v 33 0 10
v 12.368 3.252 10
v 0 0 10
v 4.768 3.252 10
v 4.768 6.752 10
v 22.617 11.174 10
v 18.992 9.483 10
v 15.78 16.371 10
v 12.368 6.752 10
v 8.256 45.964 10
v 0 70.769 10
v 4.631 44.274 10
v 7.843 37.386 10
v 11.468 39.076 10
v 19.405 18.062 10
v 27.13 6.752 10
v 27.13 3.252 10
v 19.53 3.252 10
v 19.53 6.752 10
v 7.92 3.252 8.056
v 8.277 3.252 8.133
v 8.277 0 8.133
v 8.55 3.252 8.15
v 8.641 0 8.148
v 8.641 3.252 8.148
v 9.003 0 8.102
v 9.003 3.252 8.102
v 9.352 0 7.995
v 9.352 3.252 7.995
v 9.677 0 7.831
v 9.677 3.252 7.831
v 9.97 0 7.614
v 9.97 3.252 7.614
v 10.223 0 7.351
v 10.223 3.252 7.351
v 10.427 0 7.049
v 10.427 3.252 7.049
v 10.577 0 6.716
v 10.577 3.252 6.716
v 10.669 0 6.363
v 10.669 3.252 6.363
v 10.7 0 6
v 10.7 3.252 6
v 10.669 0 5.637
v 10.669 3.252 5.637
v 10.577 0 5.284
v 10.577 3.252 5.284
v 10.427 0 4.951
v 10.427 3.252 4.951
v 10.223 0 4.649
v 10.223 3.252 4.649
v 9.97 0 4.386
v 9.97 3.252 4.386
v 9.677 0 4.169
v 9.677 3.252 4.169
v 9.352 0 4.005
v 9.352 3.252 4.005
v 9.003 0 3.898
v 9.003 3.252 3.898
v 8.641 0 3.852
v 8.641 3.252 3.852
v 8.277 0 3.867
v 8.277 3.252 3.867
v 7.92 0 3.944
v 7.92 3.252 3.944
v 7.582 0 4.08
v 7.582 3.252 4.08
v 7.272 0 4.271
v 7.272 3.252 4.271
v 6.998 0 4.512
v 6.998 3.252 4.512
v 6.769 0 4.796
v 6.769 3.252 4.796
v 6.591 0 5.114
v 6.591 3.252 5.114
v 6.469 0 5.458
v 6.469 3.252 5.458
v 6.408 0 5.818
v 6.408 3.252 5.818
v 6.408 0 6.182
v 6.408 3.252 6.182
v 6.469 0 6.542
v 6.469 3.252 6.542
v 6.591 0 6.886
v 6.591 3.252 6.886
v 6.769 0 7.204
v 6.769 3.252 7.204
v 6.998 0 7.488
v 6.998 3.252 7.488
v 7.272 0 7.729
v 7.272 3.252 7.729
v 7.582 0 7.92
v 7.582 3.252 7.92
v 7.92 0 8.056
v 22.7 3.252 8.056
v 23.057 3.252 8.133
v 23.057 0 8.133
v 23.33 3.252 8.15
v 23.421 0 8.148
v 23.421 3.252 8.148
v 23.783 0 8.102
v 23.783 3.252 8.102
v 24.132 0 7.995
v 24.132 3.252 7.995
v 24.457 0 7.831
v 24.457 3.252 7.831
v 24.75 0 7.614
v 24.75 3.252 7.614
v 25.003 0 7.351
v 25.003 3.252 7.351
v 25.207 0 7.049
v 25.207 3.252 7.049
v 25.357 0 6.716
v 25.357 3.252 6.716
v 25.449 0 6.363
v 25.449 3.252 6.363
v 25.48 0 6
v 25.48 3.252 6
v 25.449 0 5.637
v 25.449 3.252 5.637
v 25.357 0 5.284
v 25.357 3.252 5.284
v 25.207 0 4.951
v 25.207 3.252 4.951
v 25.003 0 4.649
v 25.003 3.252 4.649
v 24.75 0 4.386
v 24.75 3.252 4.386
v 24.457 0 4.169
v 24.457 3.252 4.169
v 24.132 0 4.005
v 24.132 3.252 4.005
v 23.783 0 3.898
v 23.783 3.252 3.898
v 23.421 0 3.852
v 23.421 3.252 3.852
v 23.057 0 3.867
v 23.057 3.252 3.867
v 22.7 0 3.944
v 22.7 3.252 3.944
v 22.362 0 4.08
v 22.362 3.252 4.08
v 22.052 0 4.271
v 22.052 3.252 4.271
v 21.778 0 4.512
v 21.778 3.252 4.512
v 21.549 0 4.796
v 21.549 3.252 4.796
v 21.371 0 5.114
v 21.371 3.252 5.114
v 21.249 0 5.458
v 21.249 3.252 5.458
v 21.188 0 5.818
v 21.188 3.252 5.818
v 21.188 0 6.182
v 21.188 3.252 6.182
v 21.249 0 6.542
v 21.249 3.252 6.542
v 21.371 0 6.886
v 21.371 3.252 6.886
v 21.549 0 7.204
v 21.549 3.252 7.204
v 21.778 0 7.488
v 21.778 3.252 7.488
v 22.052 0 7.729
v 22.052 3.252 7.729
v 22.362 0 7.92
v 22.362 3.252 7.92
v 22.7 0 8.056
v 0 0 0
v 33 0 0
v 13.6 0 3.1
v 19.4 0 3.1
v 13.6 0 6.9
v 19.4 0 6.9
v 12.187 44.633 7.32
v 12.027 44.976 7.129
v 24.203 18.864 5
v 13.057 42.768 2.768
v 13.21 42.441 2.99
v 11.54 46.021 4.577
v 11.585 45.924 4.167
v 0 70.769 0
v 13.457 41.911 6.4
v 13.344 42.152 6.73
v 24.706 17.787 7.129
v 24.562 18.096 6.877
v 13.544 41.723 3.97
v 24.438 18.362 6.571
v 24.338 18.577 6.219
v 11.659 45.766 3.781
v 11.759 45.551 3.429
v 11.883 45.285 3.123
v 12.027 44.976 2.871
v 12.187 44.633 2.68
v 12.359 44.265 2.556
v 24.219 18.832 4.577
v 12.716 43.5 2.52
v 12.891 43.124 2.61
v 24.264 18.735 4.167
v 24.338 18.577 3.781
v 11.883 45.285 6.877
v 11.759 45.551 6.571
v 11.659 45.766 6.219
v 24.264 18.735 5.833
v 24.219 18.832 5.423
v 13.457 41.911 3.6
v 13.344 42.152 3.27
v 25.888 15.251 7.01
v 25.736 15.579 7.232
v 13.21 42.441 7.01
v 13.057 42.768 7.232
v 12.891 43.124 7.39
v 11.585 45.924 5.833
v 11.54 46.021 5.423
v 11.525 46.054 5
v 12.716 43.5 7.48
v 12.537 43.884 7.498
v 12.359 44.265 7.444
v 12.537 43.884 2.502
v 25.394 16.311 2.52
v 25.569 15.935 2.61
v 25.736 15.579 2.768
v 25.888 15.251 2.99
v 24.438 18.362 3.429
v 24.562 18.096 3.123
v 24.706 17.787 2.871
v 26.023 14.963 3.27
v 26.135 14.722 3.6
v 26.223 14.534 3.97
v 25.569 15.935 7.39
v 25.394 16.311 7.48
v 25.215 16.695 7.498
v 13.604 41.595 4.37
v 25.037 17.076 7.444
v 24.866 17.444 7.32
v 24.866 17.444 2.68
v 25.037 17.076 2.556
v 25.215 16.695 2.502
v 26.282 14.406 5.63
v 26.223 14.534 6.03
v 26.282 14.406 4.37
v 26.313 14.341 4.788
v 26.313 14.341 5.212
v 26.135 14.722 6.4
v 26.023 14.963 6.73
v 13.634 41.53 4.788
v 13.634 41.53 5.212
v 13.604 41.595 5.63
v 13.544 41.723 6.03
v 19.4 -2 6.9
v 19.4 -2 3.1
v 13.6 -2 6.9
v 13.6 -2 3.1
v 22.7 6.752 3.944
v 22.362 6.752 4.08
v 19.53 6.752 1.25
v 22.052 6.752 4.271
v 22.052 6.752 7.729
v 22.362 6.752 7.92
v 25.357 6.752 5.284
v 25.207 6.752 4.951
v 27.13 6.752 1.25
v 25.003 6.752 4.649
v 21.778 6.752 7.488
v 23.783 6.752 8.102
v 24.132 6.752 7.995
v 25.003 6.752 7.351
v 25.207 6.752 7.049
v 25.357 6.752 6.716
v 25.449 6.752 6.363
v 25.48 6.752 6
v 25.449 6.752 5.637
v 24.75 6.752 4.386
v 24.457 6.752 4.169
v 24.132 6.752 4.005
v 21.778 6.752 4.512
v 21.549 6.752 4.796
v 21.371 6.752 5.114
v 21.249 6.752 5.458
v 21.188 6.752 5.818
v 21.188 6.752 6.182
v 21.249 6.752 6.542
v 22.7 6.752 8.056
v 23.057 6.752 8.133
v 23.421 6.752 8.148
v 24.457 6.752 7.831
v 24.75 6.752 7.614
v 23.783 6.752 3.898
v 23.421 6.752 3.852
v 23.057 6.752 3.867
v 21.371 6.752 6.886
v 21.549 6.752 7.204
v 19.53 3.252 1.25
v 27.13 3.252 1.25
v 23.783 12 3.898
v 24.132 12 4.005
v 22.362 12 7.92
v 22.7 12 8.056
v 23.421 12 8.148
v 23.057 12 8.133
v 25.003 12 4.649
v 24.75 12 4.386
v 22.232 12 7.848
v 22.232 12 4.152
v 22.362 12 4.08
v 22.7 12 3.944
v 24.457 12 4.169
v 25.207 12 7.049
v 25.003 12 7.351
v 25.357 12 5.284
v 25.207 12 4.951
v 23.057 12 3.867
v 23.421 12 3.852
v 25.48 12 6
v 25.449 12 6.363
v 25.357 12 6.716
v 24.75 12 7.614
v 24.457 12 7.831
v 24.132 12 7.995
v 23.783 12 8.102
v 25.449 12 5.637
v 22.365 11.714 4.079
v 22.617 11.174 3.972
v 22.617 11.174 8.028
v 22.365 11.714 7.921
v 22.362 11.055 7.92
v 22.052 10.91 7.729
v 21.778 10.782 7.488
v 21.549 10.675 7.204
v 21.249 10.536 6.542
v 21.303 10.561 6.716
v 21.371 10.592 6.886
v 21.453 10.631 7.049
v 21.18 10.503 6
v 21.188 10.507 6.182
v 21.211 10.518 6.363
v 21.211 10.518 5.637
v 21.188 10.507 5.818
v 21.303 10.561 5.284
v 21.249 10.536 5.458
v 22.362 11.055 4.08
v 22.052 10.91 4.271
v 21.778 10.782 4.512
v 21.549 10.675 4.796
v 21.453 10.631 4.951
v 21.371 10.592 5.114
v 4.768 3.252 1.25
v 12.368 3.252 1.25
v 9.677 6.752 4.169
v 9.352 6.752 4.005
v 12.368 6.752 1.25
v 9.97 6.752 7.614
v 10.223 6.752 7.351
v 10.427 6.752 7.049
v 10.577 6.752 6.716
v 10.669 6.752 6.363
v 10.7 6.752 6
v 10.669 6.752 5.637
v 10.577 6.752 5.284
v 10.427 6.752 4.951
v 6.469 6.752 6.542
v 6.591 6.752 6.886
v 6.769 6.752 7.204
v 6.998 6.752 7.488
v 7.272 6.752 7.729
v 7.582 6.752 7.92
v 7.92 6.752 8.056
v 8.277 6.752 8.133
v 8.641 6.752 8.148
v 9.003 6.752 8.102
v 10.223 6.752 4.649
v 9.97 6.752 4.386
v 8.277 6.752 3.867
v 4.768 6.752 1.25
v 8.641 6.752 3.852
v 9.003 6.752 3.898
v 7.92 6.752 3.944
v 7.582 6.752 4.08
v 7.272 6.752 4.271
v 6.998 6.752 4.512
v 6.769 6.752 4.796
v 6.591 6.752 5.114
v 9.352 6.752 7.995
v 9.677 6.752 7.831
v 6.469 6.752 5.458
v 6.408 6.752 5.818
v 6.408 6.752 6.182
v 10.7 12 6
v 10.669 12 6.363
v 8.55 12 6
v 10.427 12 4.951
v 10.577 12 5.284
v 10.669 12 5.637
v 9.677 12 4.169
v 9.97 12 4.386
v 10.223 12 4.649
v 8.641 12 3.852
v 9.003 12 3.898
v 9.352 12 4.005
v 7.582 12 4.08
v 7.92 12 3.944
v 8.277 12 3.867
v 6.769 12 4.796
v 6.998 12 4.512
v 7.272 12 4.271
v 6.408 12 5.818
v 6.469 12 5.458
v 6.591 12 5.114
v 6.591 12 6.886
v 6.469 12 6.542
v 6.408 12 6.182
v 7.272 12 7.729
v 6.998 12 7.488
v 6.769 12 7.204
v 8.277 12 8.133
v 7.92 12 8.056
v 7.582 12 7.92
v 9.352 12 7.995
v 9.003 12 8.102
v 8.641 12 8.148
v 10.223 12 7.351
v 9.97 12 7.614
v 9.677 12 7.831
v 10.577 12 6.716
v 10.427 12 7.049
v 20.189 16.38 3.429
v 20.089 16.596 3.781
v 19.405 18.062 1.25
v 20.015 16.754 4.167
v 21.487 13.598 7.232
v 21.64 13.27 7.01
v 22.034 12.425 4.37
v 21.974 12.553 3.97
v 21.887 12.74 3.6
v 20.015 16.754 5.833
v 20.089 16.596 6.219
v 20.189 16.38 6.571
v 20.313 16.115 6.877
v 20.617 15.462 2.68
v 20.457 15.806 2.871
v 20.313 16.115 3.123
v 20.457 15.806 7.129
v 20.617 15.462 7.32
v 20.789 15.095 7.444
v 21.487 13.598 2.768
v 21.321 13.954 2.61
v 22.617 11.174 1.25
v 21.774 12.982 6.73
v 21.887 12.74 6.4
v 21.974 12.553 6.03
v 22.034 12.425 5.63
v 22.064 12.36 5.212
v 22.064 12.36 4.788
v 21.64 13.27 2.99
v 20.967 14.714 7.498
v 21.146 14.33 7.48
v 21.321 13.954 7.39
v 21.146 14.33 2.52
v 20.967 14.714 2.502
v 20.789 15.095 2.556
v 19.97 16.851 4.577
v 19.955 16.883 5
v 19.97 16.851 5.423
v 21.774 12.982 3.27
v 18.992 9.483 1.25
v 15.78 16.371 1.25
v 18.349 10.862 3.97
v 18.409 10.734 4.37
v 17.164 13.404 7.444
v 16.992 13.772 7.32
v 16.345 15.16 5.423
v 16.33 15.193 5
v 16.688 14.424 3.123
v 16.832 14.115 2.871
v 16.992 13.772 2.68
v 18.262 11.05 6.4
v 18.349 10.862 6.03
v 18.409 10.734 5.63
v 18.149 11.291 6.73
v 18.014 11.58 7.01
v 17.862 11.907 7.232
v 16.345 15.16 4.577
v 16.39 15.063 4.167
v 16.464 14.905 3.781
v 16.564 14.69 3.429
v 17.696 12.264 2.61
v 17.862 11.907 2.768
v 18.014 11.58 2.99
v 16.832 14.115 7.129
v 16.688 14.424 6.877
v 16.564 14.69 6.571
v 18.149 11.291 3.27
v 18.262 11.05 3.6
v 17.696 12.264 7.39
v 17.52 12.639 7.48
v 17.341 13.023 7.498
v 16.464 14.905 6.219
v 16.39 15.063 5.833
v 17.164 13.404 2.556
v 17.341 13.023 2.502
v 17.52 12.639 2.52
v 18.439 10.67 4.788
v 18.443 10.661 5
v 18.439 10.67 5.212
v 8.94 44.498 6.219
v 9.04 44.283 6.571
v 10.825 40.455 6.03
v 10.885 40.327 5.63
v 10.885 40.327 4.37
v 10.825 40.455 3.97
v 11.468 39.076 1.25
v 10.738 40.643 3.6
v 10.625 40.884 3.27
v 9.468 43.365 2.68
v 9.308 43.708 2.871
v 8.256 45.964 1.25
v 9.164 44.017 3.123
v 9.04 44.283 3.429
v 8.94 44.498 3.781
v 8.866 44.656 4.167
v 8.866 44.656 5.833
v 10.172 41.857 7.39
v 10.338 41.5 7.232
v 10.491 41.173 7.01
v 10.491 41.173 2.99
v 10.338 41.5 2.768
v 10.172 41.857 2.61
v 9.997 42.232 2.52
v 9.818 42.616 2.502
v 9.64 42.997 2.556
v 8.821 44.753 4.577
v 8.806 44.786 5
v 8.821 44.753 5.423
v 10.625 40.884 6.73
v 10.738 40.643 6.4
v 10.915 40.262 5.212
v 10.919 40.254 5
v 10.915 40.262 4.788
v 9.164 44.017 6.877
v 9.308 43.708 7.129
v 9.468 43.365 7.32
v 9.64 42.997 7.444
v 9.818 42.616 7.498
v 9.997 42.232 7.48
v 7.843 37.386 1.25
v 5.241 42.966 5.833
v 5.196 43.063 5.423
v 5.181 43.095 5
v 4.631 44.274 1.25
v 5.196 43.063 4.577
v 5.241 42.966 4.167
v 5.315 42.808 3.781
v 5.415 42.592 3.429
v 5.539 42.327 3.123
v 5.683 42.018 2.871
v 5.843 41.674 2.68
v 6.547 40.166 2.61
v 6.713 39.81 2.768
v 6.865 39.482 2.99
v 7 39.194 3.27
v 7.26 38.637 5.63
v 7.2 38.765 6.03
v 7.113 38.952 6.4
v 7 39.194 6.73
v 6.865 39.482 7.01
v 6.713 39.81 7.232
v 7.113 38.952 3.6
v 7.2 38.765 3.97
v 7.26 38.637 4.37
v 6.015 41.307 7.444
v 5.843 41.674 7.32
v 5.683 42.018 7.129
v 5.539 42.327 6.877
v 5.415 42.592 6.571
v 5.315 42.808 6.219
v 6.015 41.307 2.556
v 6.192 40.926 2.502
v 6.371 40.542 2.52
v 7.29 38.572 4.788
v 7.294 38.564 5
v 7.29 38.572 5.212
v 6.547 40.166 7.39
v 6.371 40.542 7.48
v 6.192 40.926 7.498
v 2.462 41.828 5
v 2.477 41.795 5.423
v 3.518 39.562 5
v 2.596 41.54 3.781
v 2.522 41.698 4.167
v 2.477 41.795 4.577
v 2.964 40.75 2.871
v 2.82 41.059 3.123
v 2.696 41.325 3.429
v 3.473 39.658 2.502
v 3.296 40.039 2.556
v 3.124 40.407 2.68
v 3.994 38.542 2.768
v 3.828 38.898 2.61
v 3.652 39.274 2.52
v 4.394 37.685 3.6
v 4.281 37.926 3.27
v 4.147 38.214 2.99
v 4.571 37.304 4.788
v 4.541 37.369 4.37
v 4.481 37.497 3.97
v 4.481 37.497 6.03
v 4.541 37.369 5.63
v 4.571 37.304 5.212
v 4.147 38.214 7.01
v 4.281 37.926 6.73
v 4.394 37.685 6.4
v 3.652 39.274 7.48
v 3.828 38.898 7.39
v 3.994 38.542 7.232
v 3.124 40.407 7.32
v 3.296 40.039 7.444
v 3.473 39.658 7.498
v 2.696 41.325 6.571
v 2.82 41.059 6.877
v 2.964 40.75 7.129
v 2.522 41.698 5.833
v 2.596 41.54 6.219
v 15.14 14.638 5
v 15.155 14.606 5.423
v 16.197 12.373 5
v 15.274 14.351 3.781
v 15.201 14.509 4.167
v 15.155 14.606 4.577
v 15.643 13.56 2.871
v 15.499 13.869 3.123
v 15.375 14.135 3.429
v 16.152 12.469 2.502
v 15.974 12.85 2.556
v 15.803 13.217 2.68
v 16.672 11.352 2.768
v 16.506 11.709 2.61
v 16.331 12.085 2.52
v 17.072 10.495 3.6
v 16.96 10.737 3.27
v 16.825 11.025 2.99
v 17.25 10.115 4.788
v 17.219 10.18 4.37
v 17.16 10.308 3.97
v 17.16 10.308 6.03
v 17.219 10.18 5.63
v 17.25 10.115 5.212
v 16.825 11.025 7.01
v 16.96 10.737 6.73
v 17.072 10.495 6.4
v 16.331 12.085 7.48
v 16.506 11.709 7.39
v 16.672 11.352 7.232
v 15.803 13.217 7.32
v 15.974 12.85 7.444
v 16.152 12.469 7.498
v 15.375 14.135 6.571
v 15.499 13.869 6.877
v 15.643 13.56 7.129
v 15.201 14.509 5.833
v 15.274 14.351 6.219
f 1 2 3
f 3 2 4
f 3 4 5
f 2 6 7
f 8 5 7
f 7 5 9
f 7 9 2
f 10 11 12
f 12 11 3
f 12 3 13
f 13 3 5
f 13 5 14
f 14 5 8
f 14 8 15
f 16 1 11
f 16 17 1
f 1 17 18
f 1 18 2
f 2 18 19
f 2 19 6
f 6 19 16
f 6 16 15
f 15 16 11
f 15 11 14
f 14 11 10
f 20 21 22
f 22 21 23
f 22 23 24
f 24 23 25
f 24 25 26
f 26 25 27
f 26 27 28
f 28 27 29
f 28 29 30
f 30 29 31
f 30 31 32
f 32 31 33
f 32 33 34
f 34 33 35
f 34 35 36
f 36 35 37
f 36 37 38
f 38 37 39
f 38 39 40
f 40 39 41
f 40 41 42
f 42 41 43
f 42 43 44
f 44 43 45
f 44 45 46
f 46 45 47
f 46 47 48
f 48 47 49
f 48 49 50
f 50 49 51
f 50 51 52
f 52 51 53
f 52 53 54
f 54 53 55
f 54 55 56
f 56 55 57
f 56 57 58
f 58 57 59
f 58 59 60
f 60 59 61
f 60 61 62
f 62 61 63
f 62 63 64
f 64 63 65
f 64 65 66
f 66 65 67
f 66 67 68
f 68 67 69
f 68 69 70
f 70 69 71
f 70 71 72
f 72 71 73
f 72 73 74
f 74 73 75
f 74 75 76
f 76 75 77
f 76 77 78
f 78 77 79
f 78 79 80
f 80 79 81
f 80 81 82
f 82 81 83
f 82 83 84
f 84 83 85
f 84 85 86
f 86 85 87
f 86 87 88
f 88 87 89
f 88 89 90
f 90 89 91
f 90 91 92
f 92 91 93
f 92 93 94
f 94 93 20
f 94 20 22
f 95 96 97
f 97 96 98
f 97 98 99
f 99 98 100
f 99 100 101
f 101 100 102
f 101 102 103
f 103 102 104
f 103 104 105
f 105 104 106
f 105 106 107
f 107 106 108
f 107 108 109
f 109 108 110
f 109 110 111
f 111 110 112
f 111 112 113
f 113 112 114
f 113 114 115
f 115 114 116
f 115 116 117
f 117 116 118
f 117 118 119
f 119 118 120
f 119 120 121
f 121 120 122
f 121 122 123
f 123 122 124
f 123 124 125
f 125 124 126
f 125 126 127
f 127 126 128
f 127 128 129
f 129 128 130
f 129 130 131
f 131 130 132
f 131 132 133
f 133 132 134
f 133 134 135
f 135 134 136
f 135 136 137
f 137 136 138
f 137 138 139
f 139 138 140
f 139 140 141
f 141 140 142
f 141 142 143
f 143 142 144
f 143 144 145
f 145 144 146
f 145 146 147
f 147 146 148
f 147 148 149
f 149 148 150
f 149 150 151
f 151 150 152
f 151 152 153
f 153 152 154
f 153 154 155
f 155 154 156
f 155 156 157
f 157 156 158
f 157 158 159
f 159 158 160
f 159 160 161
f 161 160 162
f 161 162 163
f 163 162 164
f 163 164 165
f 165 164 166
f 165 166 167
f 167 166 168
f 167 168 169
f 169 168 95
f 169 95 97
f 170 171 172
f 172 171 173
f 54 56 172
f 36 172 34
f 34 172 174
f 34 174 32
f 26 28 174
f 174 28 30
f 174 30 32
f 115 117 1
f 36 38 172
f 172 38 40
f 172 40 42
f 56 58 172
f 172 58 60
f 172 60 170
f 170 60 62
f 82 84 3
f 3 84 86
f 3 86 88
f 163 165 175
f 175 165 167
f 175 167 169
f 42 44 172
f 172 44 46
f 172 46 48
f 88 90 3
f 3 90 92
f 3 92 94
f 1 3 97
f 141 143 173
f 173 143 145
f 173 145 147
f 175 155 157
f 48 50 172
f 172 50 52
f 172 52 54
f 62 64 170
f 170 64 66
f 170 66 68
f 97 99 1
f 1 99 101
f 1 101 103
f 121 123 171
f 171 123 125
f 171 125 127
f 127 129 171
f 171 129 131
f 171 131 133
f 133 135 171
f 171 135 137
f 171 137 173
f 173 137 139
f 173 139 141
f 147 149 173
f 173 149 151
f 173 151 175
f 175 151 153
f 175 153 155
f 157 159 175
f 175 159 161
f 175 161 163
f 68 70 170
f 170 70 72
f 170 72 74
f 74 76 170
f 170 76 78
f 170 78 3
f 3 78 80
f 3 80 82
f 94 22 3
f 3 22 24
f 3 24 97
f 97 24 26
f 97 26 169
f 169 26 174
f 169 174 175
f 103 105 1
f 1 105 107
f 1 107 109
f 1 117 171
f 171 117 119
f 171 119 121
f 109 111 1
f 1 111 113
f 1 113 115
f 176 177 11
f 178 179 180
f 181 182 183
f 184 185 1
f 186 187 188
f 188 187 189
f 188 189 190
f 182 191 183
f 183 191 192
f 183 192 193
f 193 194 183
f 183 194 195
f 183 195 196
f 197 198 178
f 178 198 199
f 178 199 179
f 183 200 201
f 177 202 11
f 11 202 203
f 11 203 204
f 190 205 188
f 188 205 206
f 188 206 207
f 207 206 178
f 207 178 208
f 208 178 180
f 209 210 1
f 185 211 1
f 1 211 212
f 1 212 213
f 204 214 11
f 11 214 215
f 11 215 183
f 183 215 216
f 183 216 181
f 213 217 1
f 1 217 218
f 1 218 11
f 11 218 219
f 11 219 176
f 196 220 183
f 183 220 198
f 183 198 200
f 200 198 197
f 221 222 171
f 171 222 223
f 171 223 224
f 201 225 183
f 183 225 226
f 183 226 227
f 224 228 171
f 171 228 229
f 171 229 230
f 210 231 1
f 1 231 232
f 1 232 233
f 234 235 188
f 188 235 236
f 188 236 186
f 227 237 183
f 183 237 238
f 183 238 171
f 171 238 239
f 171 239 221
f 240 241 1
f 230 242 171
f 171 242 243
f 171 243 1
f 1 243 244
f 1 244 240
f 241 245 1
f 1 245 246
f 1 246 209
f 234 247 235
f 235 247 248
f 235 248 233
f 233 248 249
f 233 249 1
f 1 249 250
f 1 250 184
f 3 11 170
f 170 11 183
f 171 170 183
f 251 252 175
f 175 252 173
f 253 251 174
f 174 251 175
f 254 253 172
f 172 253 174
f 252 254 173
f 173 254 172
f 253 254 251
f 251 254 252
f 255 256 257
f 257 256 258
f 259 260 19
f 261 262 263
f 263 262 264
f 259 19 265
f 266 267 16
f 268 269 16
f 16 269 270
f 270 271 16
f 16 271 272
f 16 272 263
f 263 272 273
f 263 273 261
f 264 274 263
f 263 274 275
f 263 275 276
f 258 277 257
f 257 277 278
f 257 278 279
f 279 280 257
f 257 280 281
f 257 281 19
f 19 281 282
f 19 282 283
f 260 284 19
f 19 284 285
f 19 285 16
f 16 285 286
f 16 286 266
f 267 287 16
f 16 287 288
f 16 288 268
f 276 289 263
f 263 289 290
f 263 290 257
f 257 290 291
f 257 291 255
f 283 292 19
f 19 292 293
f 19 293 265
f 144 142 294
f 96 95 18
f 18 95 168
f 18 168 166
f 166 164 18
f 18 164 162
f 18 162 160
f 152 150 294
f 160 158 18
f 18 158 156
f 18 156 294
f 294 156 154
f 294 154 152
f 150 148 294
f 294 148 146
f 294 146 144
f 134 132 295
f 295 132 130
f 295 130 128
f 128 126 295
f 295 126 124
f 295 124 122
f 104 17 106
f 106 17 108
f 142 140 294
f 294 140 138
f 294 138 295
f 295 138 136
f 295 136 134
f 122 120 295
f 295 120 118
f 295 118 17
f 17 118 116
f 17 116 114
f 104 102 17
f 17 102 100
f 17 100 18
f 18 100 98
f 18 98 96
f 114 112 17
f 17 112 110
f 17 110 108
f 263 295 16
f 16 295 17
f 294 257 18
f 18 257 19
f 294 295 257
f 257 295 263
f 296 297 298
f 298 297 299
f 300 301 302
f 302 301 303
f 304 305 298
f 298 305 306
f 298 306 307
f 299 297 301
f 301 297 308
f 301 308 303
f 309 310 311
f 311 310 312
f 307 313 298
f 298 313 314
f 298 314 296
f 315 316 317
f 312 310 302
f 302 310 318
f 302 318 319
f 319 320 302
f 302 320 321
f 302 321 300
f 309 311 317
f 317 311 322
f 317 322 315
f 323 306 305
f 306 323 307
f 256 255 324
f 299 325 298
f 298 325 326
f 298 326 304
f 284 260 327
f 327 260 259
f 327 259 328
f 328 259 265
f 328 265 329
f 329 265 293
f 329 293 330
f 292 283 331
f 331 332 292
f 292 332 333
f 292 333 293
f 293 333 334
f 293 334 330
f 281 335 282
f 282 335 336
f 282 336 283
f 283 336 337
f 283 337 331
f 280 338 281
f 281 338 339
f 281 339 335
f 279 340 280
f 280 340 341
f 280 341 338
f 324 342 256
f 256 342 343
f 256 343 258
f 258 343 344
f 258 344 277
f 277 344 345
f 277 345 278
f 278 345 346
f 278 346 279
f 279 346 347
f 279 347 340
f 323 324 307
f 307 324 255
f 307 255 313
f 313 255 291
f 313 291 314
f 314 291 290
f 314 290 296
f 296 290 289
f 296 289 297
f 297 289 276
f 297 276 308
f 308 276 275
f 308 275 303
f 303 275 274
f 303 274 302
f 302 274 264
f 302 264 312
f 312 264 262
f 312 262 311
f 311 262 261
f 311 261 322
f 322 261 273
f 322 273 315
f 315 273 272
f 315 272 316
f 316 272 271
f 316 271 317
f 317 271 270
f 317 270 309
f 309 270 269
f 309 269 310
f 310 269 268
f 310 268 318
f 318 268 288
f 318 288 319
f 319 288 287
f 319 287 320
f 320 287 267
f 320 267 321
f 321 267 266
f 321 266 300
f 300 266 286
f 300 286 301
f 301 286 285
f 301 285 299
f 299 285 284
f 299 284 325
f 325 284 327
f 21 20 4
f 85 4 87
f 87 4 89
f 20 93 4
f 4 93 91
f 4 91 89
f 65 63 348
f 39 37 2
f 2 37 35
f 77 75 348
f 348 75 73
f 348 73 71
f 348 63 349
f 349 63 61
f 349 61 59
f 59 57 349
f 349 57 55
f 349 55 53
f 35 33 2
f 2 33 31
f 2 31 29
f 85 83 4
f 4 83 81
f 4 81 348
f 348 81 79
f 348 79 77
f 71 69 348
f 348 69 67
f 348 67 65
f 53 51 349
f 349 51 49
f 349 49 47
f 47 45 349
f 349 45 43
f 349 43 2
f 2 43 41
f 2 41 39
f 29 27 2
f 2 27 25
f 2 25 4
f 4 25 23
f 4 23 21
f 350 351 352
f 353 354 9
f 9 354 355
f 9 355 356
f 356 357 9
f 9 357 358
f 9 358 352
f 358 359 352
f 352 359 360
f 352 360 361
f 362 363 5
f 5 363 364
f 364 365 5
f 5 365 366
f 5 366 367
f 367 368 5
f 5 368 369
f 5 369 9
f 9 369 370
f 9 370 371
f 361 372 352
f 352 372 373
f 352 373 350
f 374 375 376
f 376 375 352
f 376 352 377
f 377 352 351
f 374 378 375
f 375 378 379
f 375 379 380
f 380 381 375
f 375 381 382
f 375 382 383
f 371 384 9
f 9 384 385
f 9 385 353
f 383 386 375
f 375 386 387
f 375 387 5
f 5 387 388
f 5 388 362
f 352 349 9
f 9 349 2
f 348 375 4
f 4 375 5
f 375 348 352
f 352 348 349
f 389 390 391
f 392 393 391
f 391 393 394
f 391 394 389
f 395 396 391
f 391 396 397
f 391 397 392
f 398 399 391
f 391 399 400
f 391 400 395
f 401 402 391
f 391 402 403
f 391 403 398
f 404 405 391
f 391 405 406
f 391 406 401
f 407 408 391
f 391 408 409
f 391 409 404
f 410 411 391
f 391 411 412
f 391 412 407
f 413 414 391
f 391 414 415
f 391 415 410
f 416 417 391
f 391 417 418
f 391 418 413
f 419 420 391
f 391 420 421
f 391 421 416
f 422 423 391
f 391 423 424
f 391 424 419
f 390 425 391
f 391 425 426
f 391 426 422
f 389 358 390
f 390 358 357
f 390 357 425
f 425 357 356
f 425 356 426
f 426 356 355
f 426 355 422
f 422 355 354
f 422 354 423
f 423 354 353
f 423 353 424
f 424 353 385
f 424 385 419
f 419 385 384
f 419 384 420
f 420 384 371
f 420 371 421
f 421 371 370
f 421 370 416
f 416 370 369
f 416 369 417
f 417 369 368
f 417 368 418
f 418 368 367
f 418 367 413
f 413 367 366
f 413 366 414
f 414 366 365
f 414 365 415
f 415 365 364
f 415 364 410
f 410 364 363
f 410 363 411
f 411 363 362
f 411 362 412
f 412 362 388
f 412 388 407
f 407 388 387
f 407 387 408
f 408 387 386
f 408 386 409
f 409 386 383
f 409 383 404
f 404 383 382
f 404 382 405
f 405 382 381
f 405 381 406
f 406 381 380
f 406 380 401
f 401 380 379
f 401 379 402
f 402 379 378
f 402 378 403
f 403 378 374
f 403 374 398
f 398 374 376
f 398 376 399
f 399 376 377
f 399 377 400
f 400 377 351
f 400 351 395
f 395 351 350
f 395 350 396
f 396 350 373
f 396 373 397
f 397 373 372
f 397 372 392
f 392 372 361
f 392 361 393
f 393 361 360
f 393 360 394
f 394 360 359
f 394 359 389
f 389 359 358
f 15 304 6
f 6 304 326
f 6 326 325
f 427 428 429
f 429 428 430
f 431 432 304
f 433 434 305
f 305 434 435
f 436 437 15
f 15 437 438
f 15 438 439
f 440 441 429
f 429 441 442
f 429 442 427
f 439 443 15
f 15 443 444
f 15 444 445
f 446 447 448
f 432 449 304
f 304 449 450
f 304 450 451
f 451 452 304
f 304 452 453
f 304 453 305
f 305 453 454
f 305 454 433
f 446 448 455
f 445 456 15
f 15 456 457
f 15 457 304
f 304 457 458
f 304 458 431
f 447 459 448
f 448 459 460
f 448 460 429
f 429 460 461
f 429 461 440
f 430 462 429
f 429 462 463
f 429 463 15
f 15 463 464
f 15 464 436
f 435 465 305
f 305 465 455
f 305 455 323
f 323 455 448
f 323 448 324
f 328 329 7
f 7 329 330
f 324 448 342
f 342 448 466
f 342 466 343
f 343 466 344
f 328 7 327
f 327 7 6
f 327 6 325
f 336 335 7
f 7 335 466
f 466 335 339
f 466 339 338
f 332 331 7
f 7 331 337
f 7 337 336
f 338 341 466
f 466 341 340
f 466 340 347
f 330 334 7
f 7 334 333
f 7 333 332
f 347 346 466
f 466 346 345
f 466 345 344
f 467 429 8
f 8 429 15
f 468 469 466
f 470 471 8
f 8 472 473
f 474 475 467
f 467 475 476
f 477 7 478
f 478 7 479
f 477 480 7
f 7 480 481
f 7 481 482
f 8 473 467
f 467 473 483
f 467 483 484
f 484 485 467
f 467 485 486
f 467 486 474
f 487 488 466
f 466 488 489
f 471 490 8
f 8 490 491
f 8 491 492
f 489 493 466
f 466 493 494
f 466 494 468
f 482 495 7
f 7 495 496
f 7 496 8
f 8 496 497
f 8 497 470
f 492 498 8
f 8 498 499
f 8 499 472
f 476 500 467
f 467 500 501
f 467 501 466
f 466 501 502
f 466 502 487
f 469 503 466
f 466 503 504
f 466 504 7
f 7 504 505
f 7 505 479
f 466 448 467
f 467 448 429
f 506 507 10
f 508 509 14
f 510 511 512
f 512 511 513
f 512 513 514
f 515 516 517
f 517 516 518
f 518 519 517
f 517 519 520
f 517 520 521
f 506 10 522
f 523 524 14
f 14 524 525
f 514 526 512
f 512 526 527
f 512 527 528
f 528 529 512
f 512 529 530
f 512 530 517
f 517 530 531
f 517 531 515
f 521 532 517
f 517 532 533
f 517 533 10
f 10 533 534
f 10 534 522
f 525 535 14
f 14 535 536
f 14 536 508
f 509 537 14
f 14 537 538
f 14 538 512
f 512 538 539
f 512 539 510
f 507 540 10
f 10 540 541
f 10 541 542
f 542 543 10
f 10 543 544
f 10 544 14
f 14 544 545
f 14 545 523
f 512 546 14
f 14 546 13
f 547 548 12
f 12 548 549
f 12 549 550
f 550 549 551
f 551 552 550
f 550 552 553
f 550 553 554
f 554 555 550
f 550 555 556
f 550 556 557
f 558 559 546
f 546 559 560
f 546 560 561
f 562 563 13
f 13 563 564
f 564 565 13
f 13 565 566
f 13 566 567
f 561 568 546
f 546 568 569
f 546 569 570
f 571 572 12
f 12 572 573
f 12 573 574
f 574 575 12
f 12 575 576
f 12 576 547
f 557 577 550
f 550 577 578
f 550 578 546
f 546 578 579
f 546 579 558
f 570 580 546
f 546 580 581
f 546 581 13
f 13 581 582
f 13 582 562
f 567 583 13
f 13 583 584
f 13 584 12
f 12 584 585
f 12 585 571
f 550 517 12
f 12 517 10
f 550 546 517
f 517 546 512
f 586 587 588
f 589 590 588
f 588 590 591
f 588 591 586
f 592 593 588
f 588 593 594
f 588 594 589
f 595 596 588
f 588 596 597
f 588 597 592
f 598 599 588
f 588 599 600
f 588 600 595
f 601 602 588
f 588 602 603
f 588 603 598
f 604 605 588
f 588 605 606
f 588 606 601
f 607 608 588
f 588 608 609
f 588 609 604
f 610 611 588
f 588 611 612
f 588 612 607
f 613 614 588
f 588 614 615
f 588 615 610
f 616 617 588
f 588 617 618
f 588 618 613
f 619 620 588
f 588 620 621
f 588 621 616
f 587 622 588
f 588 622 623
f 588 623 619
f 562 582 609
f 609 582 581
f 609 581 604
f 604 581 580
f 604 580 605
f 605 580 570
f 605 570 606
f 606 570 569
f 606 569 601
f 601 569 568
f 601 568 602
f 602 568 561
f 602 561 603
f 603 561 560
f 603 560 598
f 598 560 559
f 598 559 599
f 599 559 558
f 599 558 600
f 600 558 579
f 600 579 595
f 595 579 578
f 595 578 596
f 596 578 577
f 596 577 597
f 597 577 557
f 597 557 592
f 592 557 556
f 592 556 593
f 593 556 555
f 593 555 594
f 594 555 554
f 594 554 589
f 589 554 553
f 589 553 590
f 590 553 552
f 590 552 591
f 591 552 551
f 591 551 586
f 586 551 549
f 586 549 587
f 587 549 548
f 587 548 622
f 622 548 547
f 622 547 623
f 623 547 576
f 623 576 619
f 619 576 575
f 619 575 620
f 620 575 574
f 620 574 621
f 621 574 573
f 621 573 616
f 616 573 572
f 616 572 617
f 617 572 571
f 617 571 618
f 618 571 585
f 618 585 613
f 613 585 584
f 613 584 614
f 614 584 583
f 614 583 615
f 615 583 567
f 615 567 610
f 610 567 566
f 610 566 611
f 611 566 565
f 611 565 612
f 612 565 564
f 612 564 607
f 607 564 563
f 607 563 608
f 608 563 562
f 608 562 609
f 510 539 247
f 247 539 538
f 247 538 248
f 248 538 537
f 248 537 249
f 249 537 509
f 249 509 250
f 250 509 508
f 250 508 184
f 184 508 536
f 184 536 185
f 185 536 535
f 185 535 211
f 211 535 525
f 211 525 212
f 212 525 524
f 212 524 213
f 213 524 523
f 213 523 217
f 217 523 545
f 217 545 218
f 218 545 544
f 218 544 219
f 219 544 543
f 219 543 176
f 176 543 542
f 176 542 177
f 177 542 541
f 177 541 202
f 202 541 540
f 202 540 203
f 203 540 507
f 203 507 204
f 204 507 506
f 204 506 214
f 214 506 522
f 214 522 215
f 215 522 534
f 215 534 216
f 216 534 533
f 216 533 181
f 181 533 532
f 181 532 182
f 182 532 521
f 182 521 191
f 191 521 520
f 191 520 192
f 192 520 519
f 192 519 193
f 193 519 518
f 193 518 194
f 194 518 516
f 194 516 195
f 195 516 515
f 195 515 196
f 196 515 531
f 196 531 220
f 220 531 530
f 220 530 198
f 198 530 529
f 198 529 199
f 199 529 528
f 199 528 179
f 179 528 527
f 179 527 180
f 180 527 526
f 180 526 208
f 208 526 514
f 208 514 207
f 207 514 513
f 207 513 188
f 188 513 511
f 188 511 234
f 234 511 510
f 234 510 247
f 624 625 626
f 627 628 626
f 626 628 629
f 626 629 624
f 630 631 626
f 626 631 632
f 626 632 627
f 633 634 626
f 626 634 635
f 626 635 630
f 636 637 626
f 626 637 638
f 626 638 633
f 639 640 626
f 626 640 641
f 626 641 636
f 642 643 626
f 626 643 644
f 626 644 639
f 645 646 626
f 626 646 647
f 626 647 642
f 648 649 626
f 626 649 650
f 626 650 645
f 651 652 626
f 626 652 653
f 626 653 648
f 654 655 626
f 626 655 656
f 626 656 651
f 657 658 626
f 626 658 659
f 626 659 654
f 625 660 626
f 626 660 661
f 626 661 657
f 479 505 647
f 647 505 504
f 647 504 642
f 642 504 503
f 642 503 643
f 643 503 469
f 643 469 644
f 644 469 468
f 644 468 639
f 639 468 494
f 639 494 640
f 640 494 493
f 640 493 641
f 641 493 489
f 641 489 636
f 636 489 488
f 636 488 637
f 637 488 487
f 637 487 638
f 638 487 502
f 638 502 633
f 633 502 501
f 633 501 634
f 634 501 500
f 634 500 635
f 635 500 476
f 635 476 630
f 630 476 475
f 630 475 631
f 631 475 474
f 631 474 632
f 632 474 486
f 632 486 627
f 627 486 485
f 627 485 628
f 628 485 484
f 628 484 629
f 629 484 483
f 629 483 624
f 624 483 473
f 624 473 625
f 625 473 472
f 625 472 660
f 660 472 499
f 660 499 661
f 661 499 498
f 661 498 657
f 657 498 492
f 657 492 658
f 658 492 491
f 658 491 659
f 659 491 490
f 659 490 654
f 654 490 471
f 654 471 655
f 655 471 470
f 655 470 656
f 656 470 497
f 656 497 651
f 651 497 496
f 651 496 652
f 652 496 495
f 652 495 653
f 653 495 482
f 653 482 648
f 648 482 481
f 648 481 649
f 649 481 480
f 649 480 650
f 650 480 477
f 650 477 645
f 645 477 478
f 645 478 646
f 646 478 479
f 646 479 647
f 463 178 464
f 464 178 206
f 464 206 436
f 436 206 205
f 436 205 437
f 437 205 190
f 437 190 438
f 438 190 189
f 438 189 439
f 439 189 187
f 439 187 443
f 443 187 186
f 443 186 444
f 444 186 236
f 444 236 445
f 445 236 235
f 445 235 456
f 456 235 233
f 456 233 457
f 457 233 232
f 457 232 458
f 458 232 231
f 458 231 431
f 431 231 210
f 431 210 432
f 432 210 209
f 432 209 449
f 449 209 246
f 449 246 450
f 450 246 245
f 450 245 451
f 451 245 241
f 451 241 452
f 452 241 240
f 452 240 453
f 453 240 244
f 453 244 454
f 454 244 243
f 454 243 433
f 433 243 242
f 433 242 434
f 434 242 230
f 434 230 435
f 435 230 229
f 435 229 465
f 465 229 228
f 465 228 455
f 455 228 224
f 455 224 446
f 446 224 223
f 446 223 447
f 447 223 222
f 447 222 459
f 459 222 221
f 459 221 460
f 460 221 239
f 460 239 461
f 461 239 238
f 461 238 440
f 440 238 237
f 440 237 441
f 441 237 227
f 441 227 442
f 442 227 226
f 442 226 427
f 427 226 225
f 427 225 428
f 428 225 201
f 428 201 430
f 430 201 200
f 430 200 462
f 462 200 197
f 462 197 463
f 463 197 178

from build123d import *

# Parameters (mm, degrees)
BOSS_EXTRUDE1_DEPTH = 10
SKETCH2_W           = 5.8
SKETCH2_H           = 3.8
BOSS_EXTRUDE2_DEPTH = 2
SKETCH3_R           = 2.15
CUT_EXTRUDE1_DEPTH  = 12
CUT_EXTRUDE5_START  = -10
SKETCH4_W           = 7.6
SKETCH4_H           = 3.5
CUT_EXTRUDE5_DEPTH  = 8.75
SKETCH7_W           = 7.6
SKETCH7_H           = 3.5
CUT_EXTRUDE6_DEPTH  = 8.75
CUT_EXTRUDE7_DEPTH  = 8.75
SKETCH12_R          = 2.5
CUT_EXTRUDE8_DEPTH  = 10


with BuildPart() as part:
    # Sketch1 → Boss-Extrude1 (new body)
    with BuildSketch(Plane.XY):
        Polygon((0, 70.768728377), (0, 0), (33, 0), align=None)
    extrude(amount=BOSS_EXTRUDE1_DEPTH)

    # Sketch2 → Boss-Extrude2 (add)
    with BuildSketch(Plane(origin=(0, 0, 0), x_dir=(-1, 0, 0), z_dir=(0, -1, 0))):
        with Locations((-16.5, -5)):
            Rectangle(SKETCH2_W, SKETCH2_H)
    extrude(amount=BOSS_EXTRUDE2_DEPTH)

    # Sketch3 → Cut-Extrude1 (cut)
    with BuildSketch(Plane(origin=(0, 0, 0), x_dir=(-1, 0, 0), z_dir=(0, -1, 0))):
        with Locations(Location((-23.33, -6, 0), (0, 0, 180))):
            Circle(SKETCH3_R)
        with Locations(Location((-8.55, -6, 0), (0, 0, 180))):
            Circle(SKETCH3_R)
    extrude(amount=-CUT_EXTRUDE1_DEPTH, mode=Mode.SUBTRACT)

    # Sketch4 → Cut-Extrude5 (cut)
    with BuildSketch(Plane(origin=(0, 0, 0), x_dir=(-1, 0, 0), z_dir=(0, 0, -1)).offset(CUT_EXTRUDE5_START)):
        with Locations((-23.33, 5.001728642)):
            Rectangle(SKETCH4_W, SKETCH4_H)
    extrude(amount=CUT_EXTRUDE5_DEPTH, mode=Mode.SUBTRACT)

    # Sketch7 → Cut-Extrude6 (cut)
    with BuildSketch(Plane.XY.offset(10)):
        with Locations((8.567911565, 5.001728642)):
            Rectangle(SKETCH7_W, SKETCH7_H)
    extrude(amount=-CUT_EXTRUDE6_DEPTH, mode=Mode.SUBTRACT)

    # Sketch10 → Cut-Extrude7 (cut)
    with BuildSketch(Plane.XY.offset(10)):
        Polygon((6.237191143, 40.829617725), (9.862422291, 42.520090772), (8.256472896, 45.964060362), (4.631241748, 44.273587315), align=None)
        Polygon((11.468371686, 39.076121181), (9.862422291, 42.520090772), (6.237191143, 40.829617725), (7.843140537, 37.385648134), align=None)
        Polygon((17.386162964, 12.927131096), (21.011394112, 14.617604143), (19.405444717, 18.061573734), (15.780213569, 16.371100687), align=None)
        Polygon((22.617343506, 11.173634553), (21.011394112, 14.617604143), (17.386162964, 12.927131096), (18.992112358, 9.483161506), align=None)
    extrude(amount=-CUT_EXTRUDE7_DEPTH, mode=Mode.SUBTRACT)

    # Sketch12 → Cut-Extrude8 (cut)
    with BuildSketch(Plane(origin=(27.10599556, 12.639733311, 0), x_dir=(0, 0, -1), z_dir=(0.9063077870366479, 0.422618261740704, 0))):
        with Locations(Location((-5, 34.368249607, 0), (0, 0, 90))):
            Circle(SKETCH12_R)
        with Locations(Location((-5, 4.368249607, 0), (0, 0, 90))):
            Circle(SKETCH12_R)
    extrude(amount=-CUT_EXTRUDE8_DEPTH, mode=Mode.SUBTRACT)


solid = part.part
